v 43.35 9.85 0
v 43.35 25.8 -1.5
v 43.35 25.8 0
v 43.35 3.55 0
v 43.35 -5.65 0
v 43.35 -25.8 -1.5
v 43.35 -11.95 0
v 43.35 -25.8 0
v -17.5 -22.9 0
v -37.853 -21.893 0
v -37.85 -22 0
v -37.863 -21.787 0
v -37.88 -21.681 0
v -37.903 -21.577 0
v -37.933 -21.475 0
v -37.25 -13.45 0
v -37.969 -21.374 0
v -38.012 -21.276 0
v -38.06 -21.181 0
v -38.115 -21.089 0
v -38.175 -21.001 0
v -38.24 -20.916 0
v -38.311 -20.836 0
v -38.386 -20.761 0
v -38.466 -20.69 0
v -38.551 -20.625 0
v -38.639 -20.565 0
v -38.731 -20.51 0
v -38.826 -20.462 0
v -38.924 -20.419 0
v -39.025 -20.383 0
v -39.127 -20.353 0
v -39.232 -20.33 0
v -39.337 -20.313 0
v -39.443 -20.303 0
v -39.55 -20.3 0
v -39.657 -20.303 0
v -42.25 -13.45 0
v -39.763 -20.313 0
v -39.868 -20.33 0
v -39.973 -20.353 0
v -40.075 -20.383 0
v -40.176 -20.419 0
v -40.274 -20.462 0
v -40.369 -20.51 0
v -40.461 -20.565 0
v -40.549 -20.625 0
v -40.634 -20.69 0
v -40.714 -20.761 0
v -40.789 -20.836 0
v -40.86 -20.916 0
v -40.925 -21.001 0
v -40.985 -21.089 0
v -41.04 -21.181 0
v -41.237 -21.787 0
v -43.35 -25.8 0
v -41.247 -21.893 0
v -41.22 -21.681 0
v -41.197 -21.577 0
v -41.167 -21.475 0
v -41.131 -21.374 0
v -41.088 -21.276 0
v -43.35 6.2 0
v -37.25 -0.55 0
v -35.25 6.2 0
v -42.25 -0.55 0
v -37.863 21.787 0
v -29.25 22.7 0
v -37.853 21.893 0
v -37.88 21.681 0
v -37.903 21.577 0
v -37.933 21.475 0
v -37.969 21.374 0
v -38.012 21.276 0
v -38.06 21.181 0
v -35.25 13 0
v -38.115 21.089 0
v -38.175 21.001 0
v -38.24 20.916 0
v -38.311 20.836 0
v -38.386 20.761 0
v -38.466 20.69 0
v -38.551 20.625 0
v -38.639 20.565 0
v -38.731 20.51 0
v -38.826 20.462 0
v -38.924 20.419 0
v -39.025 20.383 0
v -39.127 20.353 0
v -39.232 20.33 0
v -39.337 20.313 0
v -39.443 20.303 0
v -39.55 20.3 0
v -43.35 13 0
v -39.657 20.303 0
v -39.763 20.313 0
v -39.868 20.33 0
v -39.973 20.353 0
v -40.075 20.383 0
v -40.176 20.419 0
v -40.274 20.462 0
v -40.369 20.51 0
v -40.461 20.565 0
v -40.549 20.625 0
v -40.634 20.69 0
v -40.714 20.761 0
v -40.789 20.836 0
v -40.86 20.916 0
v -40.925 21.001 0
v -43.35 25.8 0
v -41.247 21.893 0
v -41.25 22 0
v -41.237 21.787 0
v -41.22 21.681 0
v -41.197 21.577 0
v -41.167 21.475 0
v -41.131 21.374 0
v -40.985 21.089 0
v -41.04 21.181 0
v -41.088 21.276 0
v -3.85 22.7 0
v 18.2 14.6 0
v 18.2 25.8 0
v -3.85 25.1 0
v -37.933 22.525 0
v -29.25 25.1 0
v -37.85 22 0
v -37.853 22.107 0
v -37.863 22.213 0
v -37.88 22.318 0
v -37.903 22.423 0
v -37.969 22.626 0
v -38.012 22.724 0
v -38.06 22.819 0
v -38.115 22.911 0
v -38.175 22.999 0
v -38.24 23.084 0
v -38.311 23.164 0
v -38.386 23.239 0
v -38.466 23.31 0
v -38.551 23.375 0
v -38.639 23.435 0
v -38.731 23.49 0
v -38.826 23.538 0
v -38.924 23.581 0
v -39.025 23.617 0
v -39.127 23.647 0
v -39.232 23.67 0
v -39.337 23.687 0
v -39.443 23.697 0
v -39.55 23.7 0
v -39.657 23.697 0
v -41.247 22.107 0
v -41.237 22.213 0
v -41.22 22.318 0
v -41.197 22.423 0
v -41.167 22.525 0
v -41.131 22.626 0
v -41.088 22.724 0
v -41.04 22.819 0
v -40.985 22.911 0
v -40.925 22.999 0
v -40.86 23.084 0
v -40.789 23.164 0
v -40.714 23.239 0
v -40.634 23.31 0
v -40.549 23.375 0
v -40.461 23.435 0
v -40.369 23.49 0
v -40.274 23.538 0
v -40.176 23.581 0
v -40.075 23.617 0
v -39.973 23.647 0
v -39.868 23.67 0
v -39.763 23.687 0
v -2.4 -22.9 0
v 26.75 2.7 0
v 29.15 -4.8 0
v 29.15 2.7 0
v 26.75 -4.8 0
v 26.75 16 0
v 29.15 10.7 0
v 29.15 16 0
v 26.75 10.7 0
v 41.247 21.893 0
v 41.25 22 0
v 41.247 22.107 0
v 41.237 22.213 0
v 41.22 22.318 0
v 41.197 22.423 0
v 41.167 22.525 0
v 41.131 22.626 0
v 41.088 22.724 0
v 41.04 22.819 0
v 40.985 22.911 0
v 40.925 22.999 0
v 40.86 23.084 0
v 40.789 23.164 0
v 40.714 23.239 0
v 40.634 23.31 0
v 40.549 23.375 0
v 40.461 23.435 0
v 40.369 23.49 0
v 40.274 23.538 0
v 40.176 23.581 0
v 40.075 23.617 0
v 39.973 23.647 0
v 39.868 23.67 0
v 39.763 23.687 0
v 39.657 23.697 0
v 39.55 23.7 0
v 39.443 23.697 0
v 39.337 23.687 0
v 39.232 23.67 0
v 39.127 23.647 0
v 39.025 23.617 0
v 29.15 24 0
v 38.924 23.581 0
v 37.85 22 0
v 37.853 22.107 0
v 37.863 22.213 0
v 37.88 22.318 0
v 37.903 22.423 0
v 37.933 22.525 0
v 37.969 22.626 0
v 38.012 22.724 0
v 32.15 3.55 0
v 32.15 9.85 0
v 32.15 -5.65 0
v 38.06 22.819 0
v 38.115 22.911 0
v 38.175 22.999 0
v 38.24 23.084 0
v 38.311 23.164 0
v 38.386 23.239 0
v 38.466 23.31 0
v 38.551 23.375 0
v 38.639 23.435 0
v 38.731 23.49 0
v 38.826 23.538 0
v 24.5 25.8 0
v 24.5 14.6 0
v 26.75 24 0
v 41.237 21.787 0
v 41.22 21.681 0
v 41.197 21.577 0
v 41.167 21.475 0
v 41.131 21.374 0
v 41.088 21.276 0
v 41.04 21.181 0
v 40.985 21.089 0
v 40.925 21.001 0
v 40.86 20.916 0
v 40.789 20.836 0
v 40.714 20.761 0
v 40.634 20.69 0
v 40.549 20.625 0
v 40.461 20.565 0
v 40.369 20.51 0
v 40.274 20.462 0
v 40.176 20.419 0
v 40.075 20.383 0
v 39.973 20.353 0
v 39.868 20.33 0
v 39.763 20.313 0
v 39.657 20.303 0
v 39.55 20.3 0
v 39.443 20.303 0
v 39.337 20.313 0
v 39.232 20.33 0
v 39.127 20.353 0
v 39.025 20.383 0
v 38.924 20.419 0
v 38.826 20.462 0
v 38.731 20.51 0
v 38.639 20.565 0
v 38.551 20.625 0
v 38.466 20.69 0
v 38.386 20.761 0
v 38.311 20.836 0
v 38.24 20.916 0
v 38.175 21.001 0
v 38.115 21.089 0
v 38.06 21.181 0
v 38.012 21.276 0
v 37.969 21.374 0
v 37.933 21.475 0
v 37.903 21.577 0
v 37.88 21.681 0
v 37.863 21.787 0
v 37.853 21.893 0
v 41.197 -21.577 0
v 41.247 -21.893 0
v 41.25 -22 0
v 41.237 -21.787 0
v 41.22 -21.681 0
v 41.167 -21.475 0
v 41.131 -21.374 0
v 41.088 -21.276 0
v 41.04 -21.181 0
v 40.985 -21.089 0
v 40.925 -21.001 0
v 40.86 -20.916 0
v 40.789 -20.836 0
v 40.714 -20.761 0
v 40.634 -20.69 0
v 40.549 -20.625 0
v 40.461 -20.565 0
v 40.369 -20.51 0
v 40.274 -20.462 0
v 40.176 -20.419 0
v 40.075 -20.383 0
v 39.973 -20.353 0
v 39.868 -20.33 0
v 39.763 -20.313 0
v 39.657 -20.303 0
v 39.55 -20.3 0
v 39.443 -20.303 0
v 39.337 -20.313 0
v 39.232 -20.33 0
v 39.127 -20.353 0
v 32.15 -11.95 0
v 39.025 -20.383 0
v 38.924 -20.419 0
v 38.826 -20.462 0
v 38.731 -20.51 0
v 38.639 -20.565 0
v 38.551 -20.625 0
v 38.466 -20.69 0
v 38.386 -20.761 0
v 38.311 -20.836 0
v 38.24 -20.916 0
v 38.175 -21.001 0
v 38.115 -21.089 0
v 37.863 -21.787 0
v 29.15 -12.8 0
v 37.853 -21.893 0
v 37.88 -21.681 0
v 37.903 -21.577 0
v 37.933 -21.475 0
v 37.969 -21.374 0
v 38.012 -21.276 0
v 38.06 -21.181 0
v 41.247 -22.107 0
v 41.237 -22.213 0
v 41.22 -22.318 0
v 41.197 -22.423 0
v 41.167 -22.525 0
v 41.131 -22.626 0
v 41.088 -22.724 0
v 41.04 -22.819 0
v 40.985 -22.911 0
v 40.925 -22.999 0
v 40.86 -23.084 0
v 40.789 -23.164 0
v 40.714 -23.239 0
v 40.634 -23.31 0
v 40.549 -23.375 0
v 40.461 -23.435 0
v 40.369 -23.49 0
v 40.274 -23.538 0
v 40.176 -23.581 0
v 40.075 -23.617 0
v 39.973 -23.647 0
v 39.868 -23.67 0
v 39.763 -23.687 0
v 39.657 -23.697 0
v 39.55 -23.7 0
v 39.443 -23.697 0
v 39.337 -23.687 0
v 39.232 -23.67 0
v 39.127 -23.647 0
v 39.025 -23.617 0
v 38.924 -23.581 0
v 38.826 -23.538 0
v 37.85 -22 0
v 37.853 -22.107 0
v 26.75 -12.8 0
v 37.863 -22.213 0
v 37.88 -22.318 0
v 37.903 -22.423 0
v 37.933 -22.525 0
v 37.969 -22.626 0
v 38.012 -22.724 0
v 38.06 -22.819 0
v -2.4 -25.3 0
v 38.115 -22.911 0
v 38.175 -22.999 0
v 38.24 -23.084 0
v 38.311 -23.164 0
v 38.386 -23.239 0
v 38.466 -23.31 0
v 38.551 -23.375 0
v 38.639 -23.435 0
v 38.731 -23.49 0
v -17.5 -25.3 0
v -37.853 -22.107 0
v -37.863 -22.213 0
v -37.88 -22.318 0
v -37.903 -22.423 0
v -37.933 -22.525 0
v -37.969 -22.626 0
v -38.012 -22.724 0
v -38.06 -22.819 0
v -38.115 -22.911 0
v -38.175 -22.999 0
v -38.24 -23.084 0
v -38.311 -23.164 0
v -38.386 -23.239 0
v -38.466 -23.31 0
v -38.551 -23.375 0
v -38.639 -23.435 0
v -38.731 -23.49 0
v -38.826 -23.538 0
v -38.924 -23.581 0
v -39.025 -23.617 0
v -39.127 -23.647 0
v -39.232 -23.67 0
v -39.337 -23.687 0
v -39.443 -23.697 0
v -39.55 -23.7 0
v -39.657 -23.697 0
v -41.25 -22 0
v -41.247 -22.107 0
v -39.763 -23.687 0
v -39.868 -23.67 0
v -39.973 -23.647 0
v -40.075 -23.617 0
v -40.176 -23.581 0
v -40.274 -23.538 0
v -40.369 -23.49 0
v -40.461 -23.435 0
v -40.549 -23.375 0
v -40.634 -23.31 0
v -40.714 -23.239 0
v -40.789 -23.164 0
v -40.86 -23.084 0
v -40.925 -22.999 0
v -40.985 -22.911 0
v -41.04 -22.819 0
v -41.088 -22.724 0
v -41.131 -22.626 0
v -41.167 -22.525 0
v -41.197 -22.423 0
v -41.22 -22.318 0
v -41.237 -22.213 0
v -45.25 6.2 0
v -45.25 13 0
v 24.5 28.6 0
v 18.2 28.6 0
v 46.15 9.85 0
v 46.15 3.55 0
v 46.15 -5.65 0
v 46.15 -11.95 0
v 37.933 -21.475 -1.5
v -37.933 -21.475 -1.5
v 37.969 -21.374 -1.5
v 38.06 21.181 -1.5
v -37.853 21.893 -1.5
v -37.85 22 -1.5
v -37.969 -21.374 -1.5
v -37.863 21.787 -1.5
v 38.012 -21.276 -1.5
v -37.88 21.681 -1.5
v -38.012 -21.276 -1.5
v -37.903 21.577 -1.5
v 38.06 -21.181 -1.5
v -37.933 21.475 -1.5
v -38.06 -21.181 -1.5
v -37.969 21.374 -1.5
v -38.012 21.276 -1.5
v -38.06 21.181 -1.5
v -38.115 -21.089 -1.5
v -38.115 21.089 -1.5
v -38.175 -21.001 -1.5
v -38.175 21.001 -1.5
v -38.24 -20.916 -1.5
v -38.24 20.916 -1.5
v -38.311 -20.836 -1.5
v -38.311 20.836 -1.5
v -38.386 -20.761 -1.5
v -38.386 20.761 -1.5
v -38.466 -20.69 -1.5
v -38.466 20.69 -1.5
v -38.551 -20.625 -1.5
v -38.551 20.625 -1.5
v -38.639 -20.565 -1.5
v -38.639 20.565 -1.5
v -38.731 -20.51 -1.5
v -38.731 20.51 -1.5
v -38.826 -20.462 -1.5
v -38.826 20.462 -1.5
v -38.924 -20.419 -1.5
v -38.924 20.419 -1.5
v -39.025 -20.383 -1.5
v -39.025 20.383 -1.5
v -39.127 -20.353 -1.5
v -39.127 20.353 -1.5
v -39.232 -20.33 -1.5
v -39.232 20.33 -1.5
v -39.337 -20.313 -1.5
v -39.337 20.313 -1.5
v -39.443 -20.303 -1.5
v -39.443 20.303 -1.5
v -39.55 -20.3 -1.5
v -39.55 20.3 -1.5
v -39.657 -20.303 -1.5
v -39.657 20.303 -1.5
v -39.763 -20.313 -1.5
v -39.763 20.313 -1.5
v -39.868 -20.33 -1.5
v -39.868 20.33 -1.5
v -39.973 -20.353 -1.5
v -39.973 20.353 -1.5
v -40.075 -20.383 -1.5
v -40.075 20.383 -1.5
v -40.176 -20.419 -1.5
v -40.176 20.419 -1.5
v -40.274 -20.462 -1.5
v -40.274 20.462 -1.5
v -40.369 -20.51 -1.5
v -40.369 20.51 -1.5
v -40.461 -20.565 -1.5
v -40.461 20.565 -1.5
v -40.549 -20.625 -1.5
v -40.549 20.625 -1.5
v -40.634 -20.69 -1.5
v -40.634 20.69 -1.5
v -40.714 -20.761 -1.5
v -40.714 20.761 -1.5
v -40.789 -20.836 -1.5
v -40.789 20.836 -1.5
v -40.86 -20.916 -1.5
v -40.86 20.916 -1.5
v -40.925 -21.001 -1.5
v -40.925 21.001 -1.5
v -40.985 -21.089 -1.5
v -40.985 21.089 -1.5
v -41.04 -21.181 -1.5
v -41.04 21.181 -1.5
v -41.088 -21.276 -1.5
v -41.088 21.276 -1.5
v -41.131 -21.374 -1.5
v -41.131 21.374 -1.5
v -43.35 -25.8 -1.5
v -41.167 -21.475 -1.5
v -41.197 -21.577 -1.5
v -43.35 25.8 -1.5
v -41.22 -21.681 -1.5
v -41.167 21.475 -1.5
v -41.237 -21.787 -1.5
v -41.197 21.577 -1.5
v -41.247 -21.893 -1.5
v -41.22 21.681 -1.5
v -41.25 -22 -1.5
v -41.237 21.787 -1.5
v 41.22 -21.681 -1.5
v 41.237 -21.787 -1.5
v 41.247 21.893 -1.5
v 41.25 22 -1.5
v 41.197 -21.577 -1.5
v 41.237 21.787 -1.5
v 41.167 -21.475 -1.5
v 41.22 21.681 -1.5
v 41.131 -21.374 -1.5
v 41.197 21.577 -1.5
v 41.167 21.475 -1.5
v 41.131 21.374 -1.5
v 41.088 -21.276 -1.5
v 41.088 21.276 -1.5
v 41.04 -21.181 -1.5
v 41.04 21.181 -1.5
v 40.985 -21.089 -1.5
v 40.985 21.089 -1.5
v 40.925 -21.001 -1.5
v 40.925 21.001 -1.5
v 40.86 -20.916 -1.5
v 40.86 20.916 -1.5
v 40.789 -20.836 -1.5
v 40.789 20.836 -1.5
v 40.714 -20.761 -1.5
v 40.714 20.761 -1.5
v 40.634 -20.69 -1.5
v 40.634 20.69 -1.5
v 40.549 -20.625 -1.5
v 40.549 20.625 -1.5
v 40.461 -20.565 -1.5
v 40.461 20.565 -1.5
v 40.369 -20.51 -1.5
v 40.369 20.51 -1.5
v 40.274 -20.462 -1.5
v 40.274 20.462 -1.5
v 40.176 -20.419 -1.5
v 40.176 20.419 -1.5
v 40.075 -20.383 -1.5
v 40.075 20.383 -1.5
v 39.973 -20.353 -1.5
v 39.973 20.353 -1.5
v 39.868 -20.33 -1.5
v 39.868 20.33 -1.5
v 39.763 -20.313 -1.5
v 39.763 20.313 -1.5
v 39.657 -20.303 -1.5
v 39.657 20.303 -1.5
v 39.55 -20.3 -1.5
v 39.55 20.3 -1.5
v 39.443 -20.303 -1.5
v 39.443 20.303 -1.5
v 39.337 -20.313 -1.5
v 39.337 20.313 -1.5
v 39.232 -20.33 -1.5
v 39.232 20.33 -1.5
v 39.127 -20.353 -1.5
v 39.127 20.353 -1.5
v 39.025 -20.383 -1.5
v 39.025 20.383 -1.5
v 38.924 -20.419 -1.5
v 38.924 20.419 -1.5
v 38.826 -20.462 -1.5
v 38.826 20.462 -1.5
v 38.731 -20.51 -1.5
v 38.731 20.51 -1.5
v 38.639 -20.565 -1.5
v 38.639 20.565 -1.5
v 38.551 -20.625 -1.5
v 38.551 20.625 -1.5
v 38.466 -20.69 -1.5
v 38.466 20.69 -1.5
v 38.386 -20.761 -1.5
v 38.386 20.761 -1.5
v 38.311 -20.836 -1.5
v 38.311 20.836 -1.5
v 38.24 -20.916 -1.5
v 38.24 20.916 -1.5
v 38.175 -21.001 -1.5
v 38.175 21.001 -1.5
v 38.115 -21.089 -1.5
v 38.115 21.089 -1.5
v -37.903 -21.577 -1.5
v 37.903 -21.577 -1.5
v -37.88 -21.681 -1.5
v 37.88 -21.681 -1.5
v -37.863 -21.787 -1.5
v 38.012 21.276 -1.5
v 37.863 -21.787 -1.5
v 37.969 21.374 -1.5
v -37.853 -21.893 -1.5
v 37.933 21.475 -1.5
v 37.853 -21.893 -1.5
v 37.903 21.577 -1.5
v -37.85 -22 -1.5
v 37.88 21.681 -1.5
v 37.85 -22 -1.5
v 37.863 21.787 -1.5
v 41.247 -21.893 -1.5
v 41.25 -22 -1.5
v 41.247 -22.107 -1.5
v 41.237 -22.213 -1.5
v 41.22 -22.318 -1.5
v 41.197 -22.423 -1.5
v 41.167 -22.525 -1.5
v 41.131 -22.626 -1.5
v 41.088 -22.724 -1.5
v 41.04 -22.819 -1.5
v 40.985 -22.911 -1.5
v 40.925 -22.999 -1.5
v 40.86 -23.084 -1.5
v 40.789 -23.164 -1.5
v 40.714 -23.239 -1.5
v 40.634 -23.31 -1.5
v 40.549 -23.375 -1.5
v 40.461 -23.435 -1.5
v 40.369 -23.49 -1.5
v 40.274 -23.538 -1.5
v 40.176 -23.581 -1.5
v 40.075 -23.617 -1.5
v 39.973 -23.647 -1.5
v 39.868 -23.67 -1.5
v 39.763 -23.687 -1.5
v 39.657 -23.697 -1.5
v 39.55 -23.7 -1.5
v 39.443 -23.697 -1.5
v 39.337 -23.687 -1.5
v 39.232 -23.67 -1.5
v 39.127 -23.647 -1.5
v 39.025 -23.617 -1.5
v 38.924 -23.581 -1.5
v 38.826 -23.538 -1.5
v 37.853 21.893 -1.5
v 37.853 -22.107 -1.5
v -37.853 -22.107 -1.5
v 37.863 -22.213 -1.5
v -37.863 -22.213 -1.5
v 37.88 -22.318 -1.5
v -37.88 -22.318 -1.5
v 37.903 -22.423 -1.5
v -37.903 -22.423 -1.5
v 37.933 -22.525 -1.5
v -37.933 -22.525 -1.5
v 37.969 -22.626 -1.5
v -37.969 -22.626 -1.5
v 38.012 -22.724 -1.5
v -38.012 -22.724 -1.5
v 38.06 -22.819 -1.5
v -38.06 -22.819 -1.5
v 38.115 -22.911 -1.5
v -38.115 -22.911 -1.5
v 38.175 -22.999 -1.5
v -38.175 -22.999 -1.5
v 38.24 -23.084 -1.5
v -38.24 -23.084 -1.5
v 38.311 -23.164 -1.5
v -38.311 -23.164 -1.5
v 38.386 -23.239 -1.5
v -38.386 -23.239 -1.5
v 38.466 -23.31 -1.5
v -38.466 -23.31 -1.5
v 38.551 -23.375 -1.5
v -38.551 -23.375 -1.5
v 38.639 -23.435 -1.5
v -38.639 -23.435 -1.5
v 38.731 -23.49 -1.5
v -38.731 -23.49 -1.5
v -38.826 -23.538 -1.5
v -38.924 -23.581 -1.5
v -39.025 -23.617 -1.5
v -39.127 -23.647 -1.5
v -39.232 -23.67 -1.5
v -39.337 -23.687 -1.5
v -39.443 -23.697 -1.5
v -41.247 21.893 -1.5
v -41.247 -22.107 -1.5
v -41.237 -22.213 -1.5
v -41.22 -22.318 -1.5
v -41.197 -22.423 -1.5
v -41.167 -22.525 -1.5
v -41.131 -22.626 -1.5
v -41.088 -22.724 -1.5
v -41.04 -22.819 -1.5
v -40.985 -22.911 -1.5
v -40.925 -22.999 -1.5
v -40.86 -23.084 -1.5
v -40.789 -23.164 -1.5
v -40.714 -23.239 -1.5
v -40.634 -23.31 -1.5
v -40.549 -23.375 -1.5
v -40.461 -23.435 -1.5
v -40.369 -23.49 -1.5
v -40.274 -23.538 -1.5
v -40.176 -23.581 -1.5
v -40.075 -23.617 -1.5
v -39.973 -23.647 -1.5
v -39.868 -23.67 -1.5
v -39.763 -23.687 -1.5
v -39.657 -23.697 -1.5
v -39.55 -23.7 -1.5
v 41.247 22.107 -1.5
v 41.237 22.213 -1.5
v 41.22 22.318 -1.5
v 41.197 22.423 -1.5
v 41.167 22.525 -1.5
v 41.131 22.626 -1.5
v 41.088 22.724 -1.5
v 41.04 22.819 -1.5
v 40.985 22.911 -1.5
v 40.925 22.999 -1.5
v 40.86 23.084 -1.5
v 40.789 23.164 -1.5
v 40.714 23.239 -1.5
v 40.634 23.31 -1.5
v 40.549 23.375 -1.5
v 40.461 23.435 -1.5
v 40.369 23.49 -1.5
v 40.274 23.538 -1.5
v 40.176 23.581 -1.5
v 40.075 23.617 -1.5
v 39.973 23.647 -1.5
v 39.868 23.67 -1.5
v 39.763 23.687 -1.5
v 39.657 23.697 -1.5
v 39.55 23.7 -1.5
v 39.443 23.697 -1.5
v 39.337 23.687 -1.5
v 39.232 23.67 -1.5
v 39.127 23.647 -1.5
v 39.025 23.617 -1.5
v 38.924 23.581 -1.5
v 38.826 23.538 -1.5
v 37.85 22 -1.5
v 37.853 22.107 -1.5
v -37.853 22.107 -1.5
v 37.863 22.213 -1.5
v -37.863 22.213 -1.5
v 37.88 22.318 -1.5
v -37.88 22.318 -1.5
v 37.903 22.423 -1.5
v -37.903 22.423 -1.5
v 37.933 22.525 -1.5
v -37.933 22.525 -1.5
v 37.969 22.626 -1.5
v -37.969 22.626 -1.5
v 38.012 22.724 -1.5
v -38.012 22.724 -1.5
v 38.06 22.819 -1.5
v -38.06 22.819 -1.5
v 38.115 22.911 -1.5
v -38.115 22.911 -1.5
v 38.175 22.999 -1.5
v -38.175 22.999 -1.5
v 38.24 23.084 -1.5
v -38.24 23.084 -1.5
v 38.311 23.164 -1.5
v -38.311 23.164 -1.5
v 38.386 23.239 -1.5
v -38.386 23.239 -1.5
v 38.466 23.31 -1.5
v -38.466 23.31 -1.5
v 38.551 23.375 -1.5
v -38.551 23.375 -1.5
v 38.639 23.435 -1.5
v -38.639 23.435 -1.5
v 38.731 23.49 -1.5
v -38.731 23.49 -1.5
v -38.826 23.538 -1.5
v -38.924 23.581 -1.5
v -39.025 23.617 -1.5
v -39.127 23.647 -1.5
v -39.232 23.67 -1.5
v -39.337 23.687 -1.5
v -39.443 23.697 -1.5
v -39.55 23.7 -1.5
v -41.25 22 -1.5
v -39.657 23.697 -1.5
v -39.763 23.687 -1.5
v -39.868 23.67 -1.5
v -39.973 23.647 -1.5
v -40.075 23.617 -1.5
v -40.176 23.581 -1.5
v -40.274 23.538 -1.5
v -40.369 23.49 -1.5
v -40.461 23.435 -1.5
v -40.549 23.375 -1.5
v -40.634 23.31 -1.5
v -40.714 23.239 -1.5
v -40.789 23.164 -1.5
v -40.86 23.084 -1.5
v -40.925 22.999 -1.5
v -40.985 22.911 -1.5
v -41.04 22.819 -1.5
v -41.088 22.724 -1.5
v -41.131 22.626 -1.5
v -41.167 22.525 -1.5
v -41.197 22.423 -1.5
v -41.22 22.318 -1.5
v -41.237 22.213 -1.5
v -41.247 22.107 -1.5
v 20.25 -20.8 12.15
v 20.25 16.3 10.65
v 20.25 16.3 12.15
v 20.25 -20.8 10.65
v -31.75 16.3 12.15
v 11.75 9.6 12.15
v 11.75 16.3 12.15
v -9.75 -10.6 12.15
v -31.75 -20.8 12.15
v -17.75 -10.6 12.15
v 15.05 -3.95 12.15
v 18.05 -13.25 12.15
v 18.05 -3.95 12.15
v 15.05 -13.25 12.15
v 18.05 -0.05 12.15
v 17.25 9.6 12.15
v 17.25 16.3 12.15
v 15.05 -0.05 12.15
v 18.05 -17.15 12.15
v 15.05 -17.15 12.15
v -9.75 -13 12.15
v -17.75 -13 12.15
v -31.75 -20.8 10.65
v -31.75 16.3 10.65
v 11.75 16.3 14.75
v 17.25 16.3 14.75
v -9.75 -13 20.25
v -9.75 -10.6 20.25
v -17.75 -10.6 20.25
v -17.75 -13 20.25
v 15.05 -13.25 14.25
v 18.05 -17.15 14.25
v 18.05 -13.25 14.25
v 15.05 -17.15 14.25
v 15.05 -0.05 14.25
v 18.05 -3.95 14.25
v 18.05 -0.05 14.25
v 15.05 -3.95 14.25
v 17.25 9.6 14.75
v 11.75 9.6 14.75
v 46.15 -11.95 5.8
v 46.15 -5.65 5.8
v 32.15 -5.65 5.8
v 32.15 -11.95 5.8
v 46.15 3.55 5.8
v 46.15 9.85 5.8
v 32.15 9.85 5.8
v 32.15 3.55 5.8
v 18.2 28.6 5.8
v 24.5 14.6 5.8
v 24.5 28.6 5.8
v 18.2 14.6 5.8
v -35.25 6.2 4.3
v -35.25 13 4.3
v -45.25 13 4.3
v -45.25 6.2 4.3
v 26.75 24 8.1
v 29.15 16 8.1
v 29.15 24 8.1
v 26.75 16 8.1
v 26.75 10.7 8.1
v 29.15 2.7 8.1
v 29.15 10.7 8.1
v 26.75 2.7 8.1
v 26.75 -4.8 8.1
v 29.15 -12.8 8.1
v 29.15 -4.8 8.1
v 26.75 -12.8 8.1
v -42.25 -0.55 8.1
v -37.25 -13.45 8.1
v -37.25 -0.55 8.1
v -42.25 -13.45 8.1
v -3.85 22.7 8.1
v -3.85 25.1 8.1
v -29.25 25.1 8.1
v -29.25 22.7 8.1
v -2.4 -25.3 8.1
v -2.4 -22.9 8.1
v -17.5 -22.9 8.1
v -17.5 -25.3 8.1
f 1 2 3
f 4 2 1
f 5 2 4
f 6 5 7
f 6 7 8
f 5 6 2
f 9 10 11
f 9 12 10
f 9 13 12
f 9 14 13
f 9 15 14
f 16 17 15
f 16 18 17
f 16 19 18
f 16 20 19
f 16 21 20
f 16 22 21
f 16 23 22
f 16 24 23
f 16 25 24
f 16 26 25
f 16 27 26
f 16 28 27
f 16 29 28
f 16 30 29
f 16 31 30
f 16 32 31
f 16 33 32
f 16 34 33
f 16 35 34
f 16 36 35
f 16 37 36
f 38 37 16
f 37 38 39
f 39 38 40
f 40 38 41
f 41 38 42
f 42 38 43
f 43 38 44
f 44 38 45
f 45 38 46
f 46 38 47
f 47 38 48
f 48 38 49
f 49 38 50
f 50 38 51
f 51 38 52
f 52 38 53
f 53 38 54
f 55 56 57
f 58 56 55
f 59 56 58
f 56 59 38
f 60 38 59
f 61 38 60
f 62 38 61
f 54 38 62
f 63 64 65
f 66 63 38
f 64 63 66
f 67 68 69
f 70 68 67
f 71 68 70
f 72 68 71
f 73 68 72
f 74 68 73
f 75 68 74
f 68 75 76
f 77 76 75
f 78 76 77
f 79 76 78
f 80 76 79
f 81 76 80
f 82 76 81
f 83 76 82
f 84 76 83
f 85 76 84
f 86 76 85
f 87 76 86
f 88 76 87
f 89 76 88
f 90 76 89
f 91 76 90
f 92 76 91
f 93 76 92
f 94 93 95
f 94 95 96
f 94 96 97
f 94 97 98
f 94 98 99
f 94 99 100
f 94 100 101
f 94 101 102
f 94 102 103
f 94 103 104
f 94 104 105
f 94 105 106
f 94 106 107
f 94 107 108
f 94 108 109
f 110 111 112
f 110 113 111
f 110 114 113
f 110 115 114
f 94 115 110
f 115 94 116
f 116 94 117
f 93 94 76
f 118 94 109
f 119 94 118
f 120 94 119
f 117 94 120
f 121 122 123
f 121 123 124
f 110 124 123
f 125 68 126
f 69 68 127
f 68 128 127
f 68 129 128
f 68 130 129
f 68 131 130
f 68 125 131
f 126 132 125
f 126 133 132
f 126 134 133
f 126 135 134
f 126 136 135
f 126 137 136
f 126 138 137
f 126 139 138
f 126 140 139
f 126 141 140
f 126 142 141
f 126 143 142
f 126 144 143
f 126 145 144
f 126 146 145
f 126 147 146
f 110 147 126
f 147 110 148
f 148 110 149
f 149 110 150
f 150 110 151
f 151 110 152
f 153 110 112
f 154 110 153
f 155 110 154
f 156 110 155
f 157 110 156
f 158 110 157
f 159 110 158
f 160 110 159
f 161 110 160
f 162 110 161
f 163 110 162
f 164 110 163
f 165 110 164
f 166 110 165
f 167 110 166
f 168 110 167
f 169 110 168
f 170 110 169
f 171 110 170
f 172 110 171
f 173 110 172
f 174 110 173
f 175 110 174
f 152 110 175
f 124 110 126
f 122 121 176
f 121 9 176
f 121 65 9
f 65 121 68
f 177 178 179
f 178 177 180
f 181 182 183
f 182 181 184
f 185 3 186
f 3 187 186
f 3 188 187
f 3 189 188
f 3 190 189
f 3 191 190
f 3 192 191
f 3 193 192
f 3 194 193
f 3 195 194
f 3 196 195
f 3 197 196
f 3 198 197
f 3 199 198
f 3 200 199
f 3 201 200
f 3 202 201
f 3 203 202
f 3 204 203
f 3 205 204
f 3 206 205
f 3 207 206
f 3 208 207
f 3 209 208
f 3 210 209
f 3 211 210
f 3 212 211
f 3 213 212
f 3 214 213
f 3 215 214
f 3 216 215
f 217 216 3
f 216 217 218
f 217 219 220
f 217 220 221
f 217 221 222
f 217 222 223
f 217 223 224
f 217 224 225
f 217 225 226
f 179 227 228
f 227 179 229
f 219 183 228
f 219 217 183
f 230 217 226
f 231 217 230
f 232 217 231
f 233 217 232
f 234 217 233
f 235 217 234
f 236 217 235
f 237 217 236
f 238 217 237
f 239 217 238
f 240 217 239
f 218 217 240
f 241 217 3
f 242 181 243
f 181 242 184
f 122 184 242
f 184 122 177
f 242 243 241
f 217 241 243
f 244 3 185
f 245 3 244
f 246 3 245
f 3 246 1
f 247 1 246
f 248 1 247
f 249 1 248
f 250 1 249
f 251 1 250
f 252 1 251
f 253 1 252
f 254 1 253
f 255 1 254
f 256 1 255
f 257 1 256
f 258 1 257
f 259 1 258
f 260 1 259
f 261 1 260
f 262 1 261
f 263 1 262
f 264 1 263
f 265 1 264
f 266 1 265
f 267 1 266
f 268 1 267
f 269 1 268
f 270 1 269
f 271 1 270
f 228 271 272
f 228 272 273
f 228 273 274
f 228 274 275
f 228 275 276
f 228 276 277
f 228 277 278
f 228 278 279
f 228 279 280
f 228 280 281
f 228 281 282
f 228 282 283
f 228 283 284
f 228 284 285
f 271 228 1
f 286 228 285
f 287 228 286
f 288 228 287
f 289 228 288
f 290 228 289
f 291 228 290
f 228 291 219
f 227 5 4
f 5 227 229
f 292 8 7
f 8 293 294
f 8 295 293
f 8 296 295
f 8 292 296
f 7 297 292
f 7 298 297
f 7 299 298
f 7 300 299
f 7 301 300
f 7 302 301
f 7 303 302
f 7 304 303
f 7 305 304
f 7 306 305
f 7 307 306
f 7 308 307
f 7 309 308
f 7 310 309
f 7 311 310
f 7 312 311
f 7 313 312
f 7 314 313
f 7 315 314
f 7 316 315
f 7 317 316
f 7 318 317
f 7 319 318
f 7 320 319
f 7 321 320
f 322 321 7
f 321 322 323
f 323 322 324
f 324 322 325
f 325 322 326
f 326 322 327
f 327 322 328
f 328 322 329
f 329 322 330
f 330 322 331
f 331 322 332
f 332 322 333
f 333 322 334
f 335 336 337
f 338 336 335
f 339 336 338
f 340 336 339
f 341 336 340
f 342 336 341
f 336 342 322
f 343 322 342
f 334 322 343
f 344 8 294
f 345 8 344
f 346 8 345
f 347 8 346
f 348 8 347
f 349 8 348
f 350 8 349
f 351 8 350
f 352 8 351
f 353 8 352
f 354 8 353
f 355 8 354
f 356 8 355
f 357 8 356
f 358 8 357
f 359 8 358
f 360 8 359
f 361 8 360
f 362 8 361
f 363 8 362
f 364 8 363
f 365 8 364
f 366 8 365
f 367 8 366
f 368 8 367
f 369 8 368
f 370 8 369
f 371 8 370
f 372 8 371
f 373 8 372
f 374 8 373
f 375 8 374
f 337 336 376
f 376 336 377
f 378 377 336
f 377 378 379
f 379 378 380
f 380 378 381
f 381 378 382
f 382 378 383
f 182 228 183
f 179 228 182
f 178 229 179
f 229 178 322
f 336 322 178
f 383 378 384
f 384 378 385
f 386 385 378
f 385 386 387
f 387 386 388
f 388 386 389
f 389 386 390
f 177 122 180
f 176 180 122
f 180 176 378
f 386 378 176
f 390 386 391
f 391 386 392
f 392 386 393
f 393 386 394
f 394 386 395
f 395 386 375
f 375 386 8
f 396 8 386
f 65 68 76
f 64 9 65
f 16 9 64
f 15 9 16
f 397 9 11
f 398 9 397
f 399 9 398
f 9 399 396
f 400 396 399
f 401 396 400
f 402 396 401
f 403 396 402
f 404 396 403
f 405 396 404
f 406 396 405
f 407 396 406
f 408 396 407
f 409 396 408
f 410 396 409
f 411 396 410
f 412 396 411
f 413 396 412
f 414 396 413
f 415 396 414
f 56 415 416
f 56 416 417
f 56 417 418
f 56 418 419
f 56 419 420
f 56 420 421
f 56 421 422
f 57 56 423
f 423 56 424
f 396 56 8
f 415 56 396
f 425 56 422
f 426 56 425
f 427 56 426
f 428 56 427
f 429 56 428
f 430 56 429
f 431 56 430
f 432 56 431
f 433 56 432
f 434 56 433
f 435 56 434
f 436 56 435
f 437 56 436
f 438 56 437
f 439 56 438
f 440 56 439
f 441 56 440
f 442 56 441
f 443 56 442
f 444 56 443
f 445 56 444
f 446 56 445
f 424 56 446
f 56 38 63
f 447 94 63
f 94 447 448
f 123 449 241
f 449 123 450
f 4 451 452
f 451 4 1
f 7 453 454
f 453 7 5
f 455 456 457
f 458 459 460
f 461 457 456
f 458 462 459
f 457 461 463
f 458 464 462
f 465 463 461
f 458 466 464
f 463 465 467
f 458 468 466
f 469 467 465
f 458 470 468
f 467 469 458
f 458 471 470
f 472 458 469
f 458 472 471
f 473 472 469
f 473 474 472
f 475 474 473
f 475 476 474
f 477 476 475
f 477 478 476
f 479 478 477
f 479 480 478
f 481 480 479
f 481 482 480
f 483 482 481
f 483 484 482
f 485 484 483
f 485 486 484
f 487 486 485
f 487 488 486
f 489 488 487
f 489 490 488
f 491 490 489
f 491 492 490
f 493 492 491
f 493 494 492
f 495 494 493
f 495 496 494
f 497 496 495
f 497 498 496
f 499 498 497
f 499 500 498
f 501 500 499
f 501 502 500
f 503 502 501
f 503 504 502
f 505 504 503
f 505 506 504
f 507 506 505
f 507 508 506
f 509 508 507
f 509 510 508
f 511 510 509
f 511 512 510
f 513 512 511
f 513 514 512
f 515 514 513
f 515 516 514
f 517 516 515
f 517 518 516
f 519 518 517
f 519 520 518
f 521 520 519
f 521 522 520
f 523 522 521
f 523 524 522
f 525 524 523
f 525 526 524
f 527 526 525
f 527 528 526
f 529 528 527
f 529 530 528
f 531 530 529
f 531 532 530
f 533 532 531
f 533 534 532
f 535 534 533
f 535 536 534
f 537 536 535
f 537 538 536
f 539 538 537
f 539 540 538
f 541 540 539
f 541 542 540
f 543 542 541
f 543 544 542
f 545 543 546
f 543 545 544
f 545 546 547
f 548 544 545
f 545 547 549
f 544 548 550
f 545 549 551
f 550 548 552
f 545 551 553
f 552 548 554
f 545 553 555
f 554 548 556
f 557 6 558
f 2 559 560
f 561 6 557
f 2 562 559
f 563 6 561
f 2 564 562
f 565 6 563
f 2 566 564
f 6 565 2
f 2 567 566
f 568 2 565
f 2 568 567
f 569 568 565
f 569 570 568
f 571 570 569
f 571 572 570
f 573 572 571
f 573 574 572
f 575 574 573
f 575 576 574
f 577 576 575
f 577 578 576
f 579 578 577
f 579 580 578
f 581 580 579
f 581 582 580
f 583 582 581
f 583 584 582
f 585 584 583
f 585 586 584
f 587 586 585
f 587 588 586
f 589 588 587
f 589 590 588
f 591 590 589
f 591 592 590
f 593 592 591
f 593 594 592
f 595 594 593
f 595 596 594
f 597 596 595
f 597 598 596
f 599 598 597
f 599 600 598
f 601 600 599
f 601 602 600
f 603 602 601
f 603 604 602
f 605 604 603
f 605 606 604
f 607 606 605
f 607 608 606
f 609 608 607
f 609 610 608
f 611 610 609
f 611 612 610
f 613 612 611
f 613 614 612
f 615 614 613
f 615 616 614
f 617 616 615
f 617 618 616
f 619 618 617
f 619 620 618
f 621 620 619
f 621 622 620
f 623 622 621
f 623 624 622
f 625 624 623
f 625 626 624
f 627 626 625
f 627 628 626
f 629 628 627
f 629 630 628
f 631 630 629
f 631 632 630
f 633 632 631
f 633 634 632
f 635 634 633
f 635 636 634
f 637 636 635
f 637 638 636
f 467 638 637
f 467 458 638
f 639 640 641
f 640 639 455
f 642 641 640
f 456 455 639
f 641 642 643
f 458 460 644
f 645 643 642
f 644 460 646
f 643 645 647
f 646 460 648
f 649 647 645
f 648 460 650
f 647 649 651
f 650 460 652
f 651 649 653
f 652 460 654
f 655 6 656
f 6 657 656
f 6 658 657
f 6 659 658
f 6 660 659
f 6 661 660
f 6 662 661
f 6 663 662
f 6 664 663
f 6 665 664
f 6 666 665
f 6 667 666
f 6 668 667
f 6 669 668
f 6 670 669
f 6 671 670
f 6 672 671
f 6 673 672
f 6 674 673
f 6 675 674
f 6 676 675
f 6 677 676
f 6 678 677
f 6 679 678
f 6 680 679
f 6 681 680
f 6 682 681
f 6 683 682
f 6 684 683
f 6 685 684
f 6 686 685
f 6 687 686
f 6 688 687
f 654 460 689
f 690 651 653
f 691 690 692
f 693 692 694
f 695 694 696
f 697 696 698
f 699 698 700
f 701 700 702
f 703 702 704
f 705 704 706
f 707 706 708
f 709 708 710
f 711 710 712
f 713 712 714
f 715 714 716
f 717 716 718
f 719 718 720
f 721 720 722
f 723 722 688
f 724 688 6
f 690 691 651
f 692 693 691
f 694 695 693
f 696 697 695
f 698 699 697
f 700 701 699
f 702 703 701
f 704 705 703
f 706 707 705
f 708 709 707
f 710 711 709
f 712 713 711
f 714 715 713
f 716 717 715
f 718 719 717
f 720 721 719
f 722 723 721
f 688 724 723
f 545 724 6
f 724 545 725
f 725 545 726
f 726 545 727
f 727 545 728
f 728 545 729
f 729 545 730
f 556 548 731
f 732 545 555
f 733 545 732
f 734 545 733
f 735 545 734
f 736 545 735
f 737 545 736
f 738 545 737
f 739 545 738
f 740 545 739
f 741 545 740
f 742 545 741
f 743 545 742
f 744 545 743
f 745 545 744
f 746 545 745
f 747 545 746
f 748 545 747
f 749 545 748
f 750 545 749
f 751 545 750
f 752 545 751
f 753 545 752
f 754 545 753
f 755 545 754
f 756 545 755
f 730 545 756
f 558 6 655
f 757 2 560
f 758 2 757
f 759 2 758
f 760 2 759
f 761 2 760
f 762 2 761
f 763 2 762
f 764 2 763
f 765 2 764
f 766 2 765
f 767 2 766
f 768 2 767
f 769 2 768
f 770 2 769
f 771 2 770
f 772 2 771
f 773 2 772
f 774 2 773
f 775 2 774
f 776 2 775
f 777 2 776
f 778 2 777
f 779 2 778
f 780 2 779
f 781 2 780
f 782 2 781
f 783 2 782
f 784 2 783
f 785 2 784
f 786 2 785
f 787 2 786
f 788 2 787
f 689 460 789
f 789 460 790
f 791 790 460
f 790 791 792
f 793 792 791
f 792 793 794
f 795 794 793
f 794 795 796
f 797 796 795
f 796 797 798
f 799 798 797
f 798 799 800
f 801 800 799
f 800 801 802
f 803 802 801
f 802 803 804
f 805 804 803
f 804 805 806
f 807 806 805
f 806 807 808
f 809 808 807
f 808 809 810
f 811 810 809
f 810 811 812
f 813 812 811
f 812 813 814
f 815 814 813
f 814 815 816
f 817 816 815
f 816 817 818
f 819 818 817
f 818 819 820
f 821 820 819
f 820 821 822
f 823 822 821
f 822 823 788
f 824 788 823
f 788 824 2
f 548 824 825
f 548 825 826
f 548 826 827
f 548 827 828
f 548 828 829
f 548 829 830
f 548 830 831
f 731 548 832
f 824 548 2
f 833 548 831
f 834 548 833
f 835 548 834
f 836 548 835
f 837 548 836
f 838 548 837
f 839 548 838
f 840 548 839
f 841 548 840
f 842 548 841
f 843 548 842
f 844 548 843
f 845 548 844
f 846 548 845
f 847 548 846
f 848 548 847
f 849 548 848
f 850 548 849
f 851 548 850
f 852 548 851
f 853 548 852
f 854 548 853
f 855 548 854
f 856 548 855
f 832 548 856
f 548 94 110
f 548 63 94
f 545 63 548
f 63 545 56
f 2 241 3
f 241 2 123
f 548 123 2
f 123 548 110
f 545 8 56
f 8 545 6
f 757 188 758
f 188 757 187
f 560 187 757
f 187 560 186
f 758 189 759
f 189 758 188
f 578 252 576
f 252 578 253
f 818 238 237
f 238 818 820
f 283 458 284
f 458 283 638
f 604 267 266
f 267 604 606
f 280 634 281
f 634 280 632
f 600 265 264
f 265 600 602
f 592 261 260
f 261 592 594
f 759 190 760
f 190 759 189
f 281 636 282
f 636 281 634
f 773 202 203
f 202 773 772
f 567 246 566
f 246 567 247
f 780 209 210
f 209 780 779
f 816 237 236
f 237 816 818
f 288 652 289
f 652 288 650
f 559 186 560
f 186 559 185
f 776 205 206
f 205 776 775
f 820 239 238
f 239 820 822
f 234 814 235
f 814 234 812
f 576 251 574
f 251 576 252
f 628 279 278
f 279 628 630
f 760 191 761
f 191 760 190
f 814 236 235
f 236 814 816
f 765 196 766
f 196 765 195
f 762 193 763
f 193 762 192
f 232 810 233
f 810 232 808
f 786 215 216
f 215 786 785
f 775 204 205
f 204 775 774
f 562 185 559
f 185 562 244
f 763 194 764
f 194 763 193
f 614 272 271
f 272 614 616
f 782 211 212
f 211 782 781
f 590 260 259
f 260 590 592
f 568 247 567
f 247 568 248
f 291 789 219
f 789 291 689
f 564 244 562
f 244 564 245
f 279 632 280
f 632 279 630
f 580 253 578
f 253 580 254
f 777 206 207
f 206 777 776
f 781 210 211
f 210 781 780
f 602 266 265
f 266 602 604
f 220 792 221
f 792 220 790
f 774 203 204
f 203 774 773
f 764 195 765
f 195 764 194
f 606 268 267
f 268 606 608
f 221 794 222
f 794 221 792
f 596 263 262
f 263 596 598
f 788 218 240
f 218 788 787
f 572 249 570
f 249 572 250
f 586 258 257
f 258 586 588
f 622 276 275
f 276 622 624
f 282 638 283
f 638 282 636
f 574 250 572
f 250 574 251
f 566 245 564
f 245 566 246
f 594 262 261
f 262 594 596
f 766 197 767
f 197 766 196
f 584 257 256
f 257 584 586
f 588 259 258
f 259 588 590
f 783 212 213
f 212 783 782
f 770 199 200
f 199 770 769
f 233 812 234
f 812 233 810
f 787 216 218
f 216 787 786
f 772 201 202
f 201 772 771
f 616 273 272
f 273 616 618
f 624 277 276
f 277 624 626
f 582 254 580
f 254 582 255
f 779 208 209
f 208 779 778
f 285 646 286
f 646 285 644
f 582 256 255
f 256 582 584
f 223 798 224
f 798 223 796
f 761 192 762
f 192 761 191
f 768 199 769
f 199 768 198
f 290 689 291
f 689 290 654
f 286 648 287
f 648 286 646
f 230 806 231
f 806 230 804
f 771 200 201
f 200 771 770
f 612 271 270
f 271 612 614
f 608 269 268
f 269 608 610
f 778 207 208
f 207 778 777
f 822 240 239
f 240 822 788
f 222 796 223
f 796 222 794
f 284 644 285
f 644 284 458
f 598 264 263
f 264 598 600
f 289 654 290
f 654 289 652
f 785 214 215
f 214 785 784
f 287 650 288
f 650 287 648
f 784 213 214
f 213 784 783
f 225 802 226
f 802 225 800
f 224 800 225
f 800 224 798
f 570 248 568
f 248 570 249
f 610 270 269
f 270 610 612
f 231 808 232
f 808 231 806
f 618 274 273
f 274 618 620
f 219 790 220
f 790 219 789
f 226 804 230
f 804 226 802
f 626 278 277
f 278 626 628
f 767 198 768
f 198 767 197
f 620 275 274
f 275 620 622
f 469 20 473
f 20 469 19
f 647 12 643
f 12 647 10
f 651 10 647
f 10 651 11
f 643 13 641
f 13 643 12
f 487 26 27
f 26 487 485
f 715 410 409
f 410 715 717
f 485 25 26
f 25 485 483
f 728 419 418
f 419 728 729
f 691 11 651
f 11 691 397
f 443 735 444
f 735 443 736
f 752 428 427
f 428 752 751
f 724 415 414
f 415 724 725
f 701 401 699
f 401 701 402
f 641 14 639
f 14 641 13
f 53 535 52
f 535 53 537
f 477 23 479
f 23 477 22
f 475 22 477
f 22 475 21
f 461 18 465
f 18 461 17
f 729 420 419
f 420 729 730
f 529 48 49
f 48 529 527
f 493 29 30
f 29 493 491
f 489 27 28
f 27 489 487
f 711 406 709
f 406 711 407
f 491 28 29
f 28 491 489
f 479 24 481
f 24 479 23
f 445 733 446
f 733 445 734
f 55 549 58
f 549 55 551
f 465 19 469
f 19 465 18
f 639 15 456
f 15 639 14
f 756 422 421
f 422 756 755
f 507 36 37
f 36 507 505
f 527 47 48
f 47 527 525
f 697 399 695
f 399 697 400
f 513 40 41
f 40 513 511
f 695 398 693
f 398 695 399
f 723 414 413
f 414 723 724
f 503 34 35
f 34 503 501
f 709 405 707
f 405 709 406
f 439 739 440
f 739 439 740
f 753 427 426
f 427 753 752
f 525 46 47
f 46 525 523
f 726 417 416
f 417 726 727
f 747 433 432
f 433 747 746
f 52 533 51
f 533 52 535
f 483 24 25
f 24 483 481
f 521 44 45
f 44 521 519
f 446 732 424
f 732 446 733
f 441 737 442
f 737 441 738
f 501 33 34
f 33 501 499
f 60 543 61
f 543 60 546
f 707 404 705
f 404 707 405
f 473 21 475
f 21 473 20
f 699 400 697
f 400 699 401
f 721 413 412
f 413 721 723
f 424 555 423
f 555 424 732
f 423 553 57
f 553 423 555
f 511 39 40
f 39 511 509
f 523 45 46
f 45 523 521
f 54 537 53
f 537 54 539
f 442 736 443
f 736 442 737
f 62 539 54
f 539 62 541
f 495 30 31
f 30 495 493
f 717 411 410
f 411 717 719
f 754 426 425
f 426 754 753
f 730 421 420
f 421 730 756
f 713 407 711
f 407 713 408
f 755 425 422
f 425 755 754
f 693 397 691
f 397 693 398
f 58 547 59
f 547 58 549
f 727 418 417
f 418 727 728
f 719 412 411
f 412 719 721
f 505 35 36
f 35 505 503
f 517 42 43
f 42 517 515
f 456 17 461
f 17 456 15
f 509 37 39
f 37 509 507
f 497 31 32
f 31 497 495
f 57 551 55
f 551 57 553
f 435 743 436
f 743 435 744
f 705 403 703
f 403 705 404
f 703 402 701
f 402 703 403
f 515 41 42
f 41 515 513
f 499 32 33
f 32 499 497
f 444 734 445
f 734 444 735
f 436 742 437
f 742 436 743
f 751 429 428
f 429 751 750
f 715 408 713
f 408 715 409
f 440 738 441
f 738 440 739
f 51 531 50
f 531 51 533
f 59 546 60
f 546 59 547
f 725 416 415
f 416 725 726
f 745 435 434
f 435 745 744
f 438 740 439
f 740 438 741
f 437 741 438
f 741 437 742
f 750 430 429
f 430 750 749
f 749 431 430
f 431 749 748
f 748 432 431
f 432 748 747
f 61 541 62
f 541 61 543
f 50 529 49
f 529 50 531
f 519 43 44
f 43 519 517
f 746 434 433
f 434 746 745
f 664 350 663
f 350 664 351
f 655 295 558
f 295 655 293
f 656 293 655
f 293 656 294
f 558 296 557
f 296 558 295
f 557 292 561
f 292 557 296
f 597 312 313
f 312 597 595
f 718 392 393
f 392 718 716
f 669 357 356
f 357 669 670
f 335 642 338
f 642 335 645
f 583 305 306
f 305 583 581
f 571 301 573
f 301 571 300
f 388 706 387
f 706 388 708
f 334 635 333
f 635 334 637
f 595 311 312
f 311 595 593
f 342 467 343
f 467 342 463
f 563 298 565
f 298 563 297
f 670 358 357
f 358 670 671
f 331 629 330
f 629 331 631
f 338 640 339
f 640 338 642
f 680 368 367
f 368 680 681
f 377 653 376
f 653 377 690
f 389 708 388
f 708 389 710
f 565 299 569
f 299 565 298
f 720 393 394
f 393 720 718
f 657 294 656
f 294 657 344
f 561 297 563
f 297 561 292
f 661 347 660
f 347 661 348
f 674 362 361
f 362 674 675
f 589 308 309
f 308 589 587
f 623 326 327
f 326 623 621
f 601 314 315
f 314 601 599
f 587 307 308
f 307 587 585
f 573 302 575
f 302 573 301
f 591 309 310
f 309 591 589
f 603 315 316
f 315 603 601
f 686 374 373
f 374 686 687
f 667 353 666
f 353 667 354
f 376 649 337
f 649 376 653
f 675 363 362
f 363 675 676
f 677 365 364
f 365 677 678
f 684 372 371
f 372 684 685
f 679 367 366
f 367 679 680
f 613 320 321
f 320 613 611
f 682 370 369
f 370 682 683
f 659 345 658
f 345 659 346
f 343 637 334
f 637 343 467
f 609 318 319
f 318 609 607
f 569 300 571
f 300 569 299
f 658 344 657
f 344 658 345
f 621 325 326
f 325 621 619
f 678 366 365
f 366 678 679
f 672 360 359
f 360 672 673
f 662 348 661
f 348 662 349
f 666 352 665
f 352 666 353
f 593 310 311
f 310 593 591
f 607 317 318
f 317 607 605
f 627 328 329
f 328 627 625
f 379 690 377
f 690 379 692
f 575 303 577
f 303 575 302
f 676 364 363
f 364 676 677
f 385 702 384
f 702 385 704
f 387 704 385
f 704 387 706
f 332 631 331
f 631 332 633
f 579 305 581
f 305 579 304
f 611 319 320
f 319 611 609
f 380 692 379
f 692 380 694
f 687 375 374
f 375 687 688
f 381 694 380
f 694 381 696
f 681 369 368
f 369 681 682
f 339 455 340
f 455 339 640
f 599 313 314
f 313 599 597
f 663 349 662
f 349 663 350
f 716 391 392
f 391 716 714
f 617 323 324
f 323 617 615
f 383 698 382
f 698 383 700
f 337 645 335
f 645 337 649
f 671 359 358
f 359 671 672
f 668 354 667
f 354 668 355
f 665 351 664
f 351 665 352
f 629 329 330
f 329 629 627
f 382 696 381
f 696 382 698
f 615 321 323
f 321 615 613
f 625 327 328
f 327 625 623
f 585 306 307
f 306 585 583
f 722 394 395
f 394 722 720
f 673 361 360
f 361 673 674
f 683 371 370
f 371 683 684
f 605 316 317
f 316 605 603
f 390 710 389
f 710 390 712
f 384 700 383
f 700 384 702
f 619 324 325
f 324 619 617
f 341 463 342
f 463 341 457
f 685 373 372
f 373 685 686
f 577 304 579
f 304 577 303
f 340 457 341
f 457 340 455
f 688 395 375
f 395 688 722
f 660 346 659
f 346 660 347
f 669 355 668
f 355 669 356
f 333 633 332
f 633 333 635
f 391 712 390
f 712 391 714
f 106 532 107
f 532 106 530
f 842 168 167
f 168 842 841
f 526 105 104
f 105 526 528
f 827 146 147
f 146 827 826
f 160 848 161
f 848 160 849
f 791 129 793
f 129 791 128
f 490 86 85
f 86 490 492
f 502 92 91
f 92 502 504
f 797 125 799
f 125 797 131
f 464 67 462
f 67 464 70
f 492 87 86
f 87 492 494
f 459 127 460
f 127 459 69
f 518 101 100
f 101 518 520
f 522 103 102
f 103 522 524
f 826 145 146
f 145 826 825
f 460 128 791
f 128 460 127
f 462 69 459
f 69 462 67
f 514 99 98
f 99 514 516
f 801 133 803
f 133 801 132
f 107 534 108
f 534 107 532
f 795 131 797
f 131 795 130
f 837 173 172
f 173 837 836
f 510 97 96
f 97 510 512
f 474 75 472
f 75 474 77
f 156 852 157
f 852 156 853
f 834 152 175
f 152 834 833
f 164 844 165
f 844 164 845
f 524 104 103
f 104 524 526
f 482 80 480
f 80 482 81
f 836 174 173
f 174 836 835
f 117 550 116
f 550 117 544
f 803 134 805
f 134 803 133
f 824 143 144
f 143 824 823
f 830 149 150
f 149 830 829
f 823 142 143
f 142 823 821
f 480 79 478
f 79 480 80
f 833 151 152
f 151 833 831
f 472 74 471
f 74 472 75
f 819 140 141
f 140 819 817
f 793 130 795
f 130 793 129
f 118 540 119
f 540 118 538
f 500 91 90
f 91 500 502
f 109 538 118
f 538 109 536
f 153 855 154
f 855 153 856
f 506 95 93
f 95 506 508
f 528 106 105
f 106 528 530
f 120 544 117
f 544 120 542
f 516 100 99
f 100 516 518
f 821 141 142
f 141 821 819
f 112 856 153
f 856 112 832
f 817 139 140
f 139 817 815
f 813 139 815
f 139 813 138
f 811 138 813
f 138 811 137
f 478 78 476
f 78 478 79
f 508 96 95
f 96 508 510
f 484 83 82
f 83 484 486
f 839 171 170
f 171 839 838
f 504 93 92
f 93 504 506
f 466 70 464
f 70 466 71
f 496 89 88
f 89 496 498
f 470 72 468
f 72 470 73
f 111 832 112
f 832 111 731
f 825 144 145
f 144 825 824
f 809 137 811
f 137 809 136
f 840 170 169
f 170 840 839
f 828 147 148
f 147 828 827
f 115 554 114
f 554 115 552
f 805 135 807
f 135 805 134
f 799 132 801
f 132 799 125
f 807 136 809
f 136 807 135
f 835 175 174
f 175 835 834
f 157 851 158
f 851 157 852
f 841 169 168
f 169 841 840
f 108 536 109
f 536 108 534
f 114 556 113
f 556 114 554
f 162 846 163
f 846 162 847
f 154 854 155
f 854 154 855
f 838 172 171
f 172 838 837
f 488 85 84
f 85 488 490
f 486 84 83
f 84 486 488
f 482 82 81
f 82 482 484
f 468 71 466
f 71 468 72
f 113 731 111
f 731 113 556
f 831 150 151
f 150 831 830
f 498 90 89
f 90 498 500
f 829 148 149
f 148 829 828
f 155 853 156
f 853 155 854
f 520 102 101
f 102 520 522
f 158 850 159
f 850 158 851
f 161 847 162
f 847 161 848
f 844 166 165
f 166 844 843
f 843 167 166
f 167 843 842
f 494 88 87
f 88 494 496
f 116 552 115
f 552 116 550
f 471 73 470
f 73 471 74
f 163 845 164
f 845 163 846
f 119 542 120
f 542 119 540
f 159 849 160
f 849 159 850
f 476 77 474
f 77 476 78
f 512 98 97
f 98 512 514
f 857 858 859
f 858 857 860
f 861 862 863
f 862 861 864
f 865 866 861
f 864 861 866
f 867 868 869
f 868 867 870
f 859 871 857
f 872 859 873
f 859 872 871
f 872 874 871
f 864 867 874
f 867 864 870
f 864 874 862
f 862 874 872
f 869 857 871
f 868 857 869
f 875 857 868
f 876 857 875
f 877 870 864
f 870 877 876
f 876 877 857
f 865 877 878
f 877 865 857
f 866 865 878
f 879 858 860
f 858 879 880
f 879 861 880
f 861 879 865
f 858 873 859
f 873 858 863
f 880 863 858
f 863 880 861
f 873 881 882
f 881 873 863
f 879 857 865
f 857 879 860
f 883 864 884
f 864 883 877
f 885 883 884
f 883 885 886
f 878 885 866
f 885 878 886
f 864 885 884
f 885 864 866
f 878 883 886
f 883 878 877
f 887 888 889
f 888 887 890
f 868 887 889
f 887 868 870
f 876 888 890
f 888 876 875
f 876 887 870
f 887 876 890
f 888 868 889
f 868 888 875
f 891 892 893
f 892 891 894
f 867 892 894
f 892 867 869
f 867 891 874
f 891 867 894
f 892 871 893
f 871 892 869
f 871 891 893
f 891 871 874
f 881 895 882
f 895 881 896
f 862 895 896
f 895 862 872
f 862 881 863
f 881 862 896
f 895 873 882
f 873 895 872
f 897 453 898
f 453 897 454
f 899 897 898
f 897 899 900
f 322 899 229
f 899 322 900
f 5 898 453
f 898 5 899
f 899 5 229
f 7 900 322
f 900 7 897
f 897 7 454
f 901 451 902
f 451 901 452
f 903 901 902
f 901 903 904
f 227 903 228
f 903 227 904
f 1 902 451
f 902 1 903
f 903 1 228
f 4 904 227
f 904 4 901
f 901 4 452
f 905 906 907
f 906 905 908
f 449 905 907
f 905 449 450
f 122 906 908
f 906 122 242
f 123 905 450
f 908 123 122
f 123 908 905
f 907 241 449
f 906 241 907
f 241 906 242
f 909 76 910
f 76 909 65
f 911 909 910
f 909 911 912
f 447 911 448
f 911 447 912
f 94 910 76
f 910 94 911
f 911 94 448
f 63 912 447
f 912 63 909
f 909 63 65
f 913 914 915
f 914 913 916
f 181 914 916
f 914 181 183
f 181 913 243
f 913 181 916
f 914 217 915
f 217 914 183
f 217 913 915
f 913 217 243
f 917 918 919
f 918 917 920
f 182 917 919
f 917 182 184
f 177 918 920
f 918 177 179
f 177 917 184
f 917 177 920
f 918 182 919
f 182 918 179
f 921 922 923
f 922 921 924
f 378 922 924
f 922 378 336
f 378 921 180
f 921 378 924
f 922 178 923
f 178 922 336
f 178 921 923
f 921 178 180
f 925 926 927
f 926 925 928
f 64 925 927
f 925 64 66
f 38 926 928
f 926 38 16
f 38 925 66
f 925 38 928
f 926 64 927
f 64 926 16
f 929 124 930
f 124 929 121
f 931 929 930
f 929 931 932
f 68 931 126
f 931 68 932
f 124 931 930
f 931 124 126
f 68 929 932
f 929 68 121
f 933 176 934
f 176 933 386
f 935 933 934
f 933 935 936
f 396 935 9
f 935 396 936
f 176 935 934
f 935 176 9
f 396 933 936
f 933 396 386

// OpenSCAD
// file: common.scad
holes_distance_to_border_pcb = 3.8;
holes_diameter = 3.4;
pcb_size = [86.7, 51.6, 1.5 ];
margin_xy = 4;
wall_width = 2;
epsilon = 0.35;
holes_distance_to_border_case_bottom = holes_distance_to_border_pcb + margin_xy;
bottom_box_internal_size = [pcb_size[0] + margin_xy*2,
                            pcb_size[1] + margin_xy*2,
                            6];
                                      
top_box_internal_size = [bottom_box_internal_size[0],
                         bottom_box_internal_size[1],
                         25];
// main file
include <common.scad>;

module mini_momentary_switch(control_components_margin)
{
     size = [3.9, 3, 2.1] + control_components_margin;
     translate([0,
               0,
               size[2]/2])
    cube(size,center=true);
}

module mini_dip_switch_4(control_components_margin)
{
    size = [6.7, 5.5, 2.6] + control_components_margin;
    translate([-size[0]/2,
               size[1]/2,
               size[2]/2])
    cube(size,center=true);
}
    
module header_1x3_pin(control_components_margin)
{
     size = [8, 2.4, 8.1] + control_components_margin;
     translate([0,
               0,
               size[2]/2])
     cube(size,center=true);   
}
module header_2x5_pin(control_components_margin)
{
    size = [12.9, 5, 8.1] + control_components_margin;
    translate([0,
               0,
               size[2]/2])
    cube(size,center=true);
}
module header_1x10_pin(control_components_margin)
{
    size = [25.4, 2.4, 8.1] + control_components_margin;
    translate([0,
               0,
               size[2]/2])
    cube(size,center=true);
}

module header_1x6_pin(control_components_margin)
{
    size = [15.1, 2.4, 8.1] + control_components_margin;
    translate([0,
               0,
               size[2]/2])
    cube(size,center=true);
}
module daughter_pcb(pcb_daugther_size, control_components_margin)
{
    $fn=100;
    union()
    {
        color("springgreen",1)
        translate([pcb_daugther_size[0]/2,
                   -pcb_daugther_size[1]/2,
                   -pcb_daugther_size[2]/2])
        cube(pcb_daugther_size, center=true);
    
        // jp2
        color("black",1)
        translate([18,
                   9 - pcb_daugther_size[1],
                   ])
        header_1x3_pin(control_components_margin);
        
        
        // btn1
        color("grey", 1)
        translate([pcb_daugther_size[0] - 3.7,
                   5.6 - pcb_daugther_size[1],
                   0])
        rotate([0,0,90])
        mini_momentary_switch(control_components_margin);
        
        // btn2
        color("grey", 1)
        translate([pcb_daugther_size[0] - 3.7,
                   18.8 - pcb_daugther_size[1],
                   0])
        rotate([0,0,90])
        mini_momentary_switch(control_components_margin);
        
        
        // sw1
        translate([pcb_daugther_size[0]-3,
                   0,
                   0])
        rotate([0,0,90])
        mini_dip_switch_4(control_components_margin);
    }
}


module pcb(control_components_margin) 
{   
    $fn=100;
    union()
    {
        translate([0,0,-pcb_size[2]/2])
        difference(){
        // main PCB
        color("green",1)
        cube(pcb_size,center=true);
        
        // 4 corner holes
        translate([pcb_size[0]/2 - holes_distance_to_border_pcb,
                   pcb_size[1]/2 - holes_distance_to_border_pcb,
                   0])
        cylinder(h=pcb_size[2], d=holes_diameter, center=true);
        
        translate([holes_distance_to_border_pcb - pcb_size[0]/2,
                   holes_distance_to_border_pcb - pcb_size[1]/2,
                   0])
        cylinder(h=pcb_size[2], d=holes_diameter, center=true);
        
        translate([pcb_size[0]/2 - holes_distance_to_border_pcb,
                   holes_distance_to_border_pcb - pcb_size[1]/2,
                   0])
        cylinder(h=pcb_size[2], d=holes_diameter, center=true);
        
        translate([holes_distance_to_border_pcb - pcb_size[0]/2,
                   pcb_size[1]/2 - holes_distance_to_border_pcb,
                   0])
        cylinder(h=pcb_size[2], d=holes_diameter, center=true);
    }
    
    // add jacks
    jack_size = [14, 6.3, 5.8] + [control_components_margin[2], control_components_margin[0], control_components_margin[1]];
    jack_inner_length = 11.2;
        
    hpout01_jack_distance_to_border = 17;
    hpout23_jack_distance_to_border = 19.1;
    linein01_jack_distance_to_border = 22;
    
    // HP out 0/1
    color("black", 1)
    translate([pcb_size[0]/2 - jack_size[0]/2 + (jack_size[0]-jack_inner_length),
    hpout01_jack_distance_to_border - pcb_size[1]/2,
    jack_size[2]/2])
    cube(jack_size, center=true);
    
    // HP out 2/3
    color("yellow", 1)
    translate([pcb_size[0]/2 - jack_size[0]/2 + (jack_size[0]-jack_inner_length),
    pcb_size[1]/2 - hpout23_jack_distance_to_border,
    jack_size[2]/2])
    cube(jack_size, center=true);
    
    // line in 0/1
    color("hotpink", 1)
    translate([pcb_size[0]/2 - linein01_jack_distance_to_border,
        pcb_size[1]/2 - jack_size[0]/2 + (jack_size[0]-jack_inner_length),
        jack_size[2]/2])
    rotate([0,0,90])
    cube(jack_size, center=true);
   
   // USB-C connector
    usbc_distance_to_border = 16.2;
    usbc_size = [10, 6.8, 4.3] + [control_components_margin[2], control_components_margin[0], control_components_margin[1]];
    
    color("lightgray", 1)
    translate([(usbc_distance_to_border-usbc_size[0] - pcb_size[0])/2,
               pcb_size[1]/2 - usbc_distance_to_border,
              usbc_size[2]/2])
    cube(usbc_size, center=true);
    
    // headers
    j41_3p_center_distance_to_border = [15.4, 5.8];
    j61_3p_center_distance_to_border = [15.4, hpout23_jack_distance_to_border];
    j51_3p_center_distance_to_border = [15.4, pcb_size[1] - hpout01_jack_distance_to_border];
    
    // j41
    color("hotpink", 1)
    translate([pcb_size[0]/2 - j41_3p_center_distance_to_border[0],
               pcb_size[1]/2 - j41_3p_center_distance_to_border[1],
               0])
    rotate([0,0,90])
    header_1x3_pin(control_components_margin);
   
    // j61
    color("yellow", 1)
    translate([pcb_size[0]/2 - j61_3p_center_distance_to_border[0],
               pcb_size[1]/2 - j61_3p_center_distance_to_border[1],
               0])
    rotate([0,0,90])
    header_1x3_pin(control_components_margin);
    
    // j51
    color("black", 1)
    translate([pcb_size[0]/2 - j51_3p_center_distance_to_border[0],
               pcb_size[1]/2 - j51_3p_center_distance_to_border[1],
               0])
    rotate([0,0,90])
    header_1x3_pin(control_components_margin);
    
    // j1
    j1_center_distance_to_border = [32.8,3.6];
    color("black",1)
    translate([j1_center_distance_to_border[1]-pcb_size[0]/2,
               pcb_size[1]/2 - j1_center_distance_to_border[0],
               0])
    rotate([0,0,90])
    header_2x5_pin(control_components_margin);
    
    // j2
    j2_center_distance_to_border = [26.8, 1.9];
    color("black",1)
    translate([j2_center_distance_to_border[0] - pcb_size[0]/2,
               pcb_size[1]/2 - j2_center_distance_to_border[1],
               0])
    header_1x10_pin(control_components_margin);
    
    // j3
    j3_center_distance_to_border = [33.4, 1.7];
    color("black",1)
    translate([j3_center_distance_to_border[0] - pcb_size[0]/2,
               j3_center_distance_to_border[1] - pcb_size[1]/2,
               0])
    header_1x6_pin(control_components_margin);
    
    pcb_daugther_size = [52 , 37.1, 1.5];
    pcb_daugther_distance_to_border = [11.6, 9.5, 10.65];
    translate([pcb_daugther_distance_to_border[0] - pcb_size[0]/2,
               pcb_size[1]/2 - pcb_daugther_distance_to_border[1],
               pcb_daugther_distance_to_border[2] + pcb_size[2]])
    daughter_pcb(pcb_daugther_size,control_components_margin);
}
}

pcb([0,0,0]);
